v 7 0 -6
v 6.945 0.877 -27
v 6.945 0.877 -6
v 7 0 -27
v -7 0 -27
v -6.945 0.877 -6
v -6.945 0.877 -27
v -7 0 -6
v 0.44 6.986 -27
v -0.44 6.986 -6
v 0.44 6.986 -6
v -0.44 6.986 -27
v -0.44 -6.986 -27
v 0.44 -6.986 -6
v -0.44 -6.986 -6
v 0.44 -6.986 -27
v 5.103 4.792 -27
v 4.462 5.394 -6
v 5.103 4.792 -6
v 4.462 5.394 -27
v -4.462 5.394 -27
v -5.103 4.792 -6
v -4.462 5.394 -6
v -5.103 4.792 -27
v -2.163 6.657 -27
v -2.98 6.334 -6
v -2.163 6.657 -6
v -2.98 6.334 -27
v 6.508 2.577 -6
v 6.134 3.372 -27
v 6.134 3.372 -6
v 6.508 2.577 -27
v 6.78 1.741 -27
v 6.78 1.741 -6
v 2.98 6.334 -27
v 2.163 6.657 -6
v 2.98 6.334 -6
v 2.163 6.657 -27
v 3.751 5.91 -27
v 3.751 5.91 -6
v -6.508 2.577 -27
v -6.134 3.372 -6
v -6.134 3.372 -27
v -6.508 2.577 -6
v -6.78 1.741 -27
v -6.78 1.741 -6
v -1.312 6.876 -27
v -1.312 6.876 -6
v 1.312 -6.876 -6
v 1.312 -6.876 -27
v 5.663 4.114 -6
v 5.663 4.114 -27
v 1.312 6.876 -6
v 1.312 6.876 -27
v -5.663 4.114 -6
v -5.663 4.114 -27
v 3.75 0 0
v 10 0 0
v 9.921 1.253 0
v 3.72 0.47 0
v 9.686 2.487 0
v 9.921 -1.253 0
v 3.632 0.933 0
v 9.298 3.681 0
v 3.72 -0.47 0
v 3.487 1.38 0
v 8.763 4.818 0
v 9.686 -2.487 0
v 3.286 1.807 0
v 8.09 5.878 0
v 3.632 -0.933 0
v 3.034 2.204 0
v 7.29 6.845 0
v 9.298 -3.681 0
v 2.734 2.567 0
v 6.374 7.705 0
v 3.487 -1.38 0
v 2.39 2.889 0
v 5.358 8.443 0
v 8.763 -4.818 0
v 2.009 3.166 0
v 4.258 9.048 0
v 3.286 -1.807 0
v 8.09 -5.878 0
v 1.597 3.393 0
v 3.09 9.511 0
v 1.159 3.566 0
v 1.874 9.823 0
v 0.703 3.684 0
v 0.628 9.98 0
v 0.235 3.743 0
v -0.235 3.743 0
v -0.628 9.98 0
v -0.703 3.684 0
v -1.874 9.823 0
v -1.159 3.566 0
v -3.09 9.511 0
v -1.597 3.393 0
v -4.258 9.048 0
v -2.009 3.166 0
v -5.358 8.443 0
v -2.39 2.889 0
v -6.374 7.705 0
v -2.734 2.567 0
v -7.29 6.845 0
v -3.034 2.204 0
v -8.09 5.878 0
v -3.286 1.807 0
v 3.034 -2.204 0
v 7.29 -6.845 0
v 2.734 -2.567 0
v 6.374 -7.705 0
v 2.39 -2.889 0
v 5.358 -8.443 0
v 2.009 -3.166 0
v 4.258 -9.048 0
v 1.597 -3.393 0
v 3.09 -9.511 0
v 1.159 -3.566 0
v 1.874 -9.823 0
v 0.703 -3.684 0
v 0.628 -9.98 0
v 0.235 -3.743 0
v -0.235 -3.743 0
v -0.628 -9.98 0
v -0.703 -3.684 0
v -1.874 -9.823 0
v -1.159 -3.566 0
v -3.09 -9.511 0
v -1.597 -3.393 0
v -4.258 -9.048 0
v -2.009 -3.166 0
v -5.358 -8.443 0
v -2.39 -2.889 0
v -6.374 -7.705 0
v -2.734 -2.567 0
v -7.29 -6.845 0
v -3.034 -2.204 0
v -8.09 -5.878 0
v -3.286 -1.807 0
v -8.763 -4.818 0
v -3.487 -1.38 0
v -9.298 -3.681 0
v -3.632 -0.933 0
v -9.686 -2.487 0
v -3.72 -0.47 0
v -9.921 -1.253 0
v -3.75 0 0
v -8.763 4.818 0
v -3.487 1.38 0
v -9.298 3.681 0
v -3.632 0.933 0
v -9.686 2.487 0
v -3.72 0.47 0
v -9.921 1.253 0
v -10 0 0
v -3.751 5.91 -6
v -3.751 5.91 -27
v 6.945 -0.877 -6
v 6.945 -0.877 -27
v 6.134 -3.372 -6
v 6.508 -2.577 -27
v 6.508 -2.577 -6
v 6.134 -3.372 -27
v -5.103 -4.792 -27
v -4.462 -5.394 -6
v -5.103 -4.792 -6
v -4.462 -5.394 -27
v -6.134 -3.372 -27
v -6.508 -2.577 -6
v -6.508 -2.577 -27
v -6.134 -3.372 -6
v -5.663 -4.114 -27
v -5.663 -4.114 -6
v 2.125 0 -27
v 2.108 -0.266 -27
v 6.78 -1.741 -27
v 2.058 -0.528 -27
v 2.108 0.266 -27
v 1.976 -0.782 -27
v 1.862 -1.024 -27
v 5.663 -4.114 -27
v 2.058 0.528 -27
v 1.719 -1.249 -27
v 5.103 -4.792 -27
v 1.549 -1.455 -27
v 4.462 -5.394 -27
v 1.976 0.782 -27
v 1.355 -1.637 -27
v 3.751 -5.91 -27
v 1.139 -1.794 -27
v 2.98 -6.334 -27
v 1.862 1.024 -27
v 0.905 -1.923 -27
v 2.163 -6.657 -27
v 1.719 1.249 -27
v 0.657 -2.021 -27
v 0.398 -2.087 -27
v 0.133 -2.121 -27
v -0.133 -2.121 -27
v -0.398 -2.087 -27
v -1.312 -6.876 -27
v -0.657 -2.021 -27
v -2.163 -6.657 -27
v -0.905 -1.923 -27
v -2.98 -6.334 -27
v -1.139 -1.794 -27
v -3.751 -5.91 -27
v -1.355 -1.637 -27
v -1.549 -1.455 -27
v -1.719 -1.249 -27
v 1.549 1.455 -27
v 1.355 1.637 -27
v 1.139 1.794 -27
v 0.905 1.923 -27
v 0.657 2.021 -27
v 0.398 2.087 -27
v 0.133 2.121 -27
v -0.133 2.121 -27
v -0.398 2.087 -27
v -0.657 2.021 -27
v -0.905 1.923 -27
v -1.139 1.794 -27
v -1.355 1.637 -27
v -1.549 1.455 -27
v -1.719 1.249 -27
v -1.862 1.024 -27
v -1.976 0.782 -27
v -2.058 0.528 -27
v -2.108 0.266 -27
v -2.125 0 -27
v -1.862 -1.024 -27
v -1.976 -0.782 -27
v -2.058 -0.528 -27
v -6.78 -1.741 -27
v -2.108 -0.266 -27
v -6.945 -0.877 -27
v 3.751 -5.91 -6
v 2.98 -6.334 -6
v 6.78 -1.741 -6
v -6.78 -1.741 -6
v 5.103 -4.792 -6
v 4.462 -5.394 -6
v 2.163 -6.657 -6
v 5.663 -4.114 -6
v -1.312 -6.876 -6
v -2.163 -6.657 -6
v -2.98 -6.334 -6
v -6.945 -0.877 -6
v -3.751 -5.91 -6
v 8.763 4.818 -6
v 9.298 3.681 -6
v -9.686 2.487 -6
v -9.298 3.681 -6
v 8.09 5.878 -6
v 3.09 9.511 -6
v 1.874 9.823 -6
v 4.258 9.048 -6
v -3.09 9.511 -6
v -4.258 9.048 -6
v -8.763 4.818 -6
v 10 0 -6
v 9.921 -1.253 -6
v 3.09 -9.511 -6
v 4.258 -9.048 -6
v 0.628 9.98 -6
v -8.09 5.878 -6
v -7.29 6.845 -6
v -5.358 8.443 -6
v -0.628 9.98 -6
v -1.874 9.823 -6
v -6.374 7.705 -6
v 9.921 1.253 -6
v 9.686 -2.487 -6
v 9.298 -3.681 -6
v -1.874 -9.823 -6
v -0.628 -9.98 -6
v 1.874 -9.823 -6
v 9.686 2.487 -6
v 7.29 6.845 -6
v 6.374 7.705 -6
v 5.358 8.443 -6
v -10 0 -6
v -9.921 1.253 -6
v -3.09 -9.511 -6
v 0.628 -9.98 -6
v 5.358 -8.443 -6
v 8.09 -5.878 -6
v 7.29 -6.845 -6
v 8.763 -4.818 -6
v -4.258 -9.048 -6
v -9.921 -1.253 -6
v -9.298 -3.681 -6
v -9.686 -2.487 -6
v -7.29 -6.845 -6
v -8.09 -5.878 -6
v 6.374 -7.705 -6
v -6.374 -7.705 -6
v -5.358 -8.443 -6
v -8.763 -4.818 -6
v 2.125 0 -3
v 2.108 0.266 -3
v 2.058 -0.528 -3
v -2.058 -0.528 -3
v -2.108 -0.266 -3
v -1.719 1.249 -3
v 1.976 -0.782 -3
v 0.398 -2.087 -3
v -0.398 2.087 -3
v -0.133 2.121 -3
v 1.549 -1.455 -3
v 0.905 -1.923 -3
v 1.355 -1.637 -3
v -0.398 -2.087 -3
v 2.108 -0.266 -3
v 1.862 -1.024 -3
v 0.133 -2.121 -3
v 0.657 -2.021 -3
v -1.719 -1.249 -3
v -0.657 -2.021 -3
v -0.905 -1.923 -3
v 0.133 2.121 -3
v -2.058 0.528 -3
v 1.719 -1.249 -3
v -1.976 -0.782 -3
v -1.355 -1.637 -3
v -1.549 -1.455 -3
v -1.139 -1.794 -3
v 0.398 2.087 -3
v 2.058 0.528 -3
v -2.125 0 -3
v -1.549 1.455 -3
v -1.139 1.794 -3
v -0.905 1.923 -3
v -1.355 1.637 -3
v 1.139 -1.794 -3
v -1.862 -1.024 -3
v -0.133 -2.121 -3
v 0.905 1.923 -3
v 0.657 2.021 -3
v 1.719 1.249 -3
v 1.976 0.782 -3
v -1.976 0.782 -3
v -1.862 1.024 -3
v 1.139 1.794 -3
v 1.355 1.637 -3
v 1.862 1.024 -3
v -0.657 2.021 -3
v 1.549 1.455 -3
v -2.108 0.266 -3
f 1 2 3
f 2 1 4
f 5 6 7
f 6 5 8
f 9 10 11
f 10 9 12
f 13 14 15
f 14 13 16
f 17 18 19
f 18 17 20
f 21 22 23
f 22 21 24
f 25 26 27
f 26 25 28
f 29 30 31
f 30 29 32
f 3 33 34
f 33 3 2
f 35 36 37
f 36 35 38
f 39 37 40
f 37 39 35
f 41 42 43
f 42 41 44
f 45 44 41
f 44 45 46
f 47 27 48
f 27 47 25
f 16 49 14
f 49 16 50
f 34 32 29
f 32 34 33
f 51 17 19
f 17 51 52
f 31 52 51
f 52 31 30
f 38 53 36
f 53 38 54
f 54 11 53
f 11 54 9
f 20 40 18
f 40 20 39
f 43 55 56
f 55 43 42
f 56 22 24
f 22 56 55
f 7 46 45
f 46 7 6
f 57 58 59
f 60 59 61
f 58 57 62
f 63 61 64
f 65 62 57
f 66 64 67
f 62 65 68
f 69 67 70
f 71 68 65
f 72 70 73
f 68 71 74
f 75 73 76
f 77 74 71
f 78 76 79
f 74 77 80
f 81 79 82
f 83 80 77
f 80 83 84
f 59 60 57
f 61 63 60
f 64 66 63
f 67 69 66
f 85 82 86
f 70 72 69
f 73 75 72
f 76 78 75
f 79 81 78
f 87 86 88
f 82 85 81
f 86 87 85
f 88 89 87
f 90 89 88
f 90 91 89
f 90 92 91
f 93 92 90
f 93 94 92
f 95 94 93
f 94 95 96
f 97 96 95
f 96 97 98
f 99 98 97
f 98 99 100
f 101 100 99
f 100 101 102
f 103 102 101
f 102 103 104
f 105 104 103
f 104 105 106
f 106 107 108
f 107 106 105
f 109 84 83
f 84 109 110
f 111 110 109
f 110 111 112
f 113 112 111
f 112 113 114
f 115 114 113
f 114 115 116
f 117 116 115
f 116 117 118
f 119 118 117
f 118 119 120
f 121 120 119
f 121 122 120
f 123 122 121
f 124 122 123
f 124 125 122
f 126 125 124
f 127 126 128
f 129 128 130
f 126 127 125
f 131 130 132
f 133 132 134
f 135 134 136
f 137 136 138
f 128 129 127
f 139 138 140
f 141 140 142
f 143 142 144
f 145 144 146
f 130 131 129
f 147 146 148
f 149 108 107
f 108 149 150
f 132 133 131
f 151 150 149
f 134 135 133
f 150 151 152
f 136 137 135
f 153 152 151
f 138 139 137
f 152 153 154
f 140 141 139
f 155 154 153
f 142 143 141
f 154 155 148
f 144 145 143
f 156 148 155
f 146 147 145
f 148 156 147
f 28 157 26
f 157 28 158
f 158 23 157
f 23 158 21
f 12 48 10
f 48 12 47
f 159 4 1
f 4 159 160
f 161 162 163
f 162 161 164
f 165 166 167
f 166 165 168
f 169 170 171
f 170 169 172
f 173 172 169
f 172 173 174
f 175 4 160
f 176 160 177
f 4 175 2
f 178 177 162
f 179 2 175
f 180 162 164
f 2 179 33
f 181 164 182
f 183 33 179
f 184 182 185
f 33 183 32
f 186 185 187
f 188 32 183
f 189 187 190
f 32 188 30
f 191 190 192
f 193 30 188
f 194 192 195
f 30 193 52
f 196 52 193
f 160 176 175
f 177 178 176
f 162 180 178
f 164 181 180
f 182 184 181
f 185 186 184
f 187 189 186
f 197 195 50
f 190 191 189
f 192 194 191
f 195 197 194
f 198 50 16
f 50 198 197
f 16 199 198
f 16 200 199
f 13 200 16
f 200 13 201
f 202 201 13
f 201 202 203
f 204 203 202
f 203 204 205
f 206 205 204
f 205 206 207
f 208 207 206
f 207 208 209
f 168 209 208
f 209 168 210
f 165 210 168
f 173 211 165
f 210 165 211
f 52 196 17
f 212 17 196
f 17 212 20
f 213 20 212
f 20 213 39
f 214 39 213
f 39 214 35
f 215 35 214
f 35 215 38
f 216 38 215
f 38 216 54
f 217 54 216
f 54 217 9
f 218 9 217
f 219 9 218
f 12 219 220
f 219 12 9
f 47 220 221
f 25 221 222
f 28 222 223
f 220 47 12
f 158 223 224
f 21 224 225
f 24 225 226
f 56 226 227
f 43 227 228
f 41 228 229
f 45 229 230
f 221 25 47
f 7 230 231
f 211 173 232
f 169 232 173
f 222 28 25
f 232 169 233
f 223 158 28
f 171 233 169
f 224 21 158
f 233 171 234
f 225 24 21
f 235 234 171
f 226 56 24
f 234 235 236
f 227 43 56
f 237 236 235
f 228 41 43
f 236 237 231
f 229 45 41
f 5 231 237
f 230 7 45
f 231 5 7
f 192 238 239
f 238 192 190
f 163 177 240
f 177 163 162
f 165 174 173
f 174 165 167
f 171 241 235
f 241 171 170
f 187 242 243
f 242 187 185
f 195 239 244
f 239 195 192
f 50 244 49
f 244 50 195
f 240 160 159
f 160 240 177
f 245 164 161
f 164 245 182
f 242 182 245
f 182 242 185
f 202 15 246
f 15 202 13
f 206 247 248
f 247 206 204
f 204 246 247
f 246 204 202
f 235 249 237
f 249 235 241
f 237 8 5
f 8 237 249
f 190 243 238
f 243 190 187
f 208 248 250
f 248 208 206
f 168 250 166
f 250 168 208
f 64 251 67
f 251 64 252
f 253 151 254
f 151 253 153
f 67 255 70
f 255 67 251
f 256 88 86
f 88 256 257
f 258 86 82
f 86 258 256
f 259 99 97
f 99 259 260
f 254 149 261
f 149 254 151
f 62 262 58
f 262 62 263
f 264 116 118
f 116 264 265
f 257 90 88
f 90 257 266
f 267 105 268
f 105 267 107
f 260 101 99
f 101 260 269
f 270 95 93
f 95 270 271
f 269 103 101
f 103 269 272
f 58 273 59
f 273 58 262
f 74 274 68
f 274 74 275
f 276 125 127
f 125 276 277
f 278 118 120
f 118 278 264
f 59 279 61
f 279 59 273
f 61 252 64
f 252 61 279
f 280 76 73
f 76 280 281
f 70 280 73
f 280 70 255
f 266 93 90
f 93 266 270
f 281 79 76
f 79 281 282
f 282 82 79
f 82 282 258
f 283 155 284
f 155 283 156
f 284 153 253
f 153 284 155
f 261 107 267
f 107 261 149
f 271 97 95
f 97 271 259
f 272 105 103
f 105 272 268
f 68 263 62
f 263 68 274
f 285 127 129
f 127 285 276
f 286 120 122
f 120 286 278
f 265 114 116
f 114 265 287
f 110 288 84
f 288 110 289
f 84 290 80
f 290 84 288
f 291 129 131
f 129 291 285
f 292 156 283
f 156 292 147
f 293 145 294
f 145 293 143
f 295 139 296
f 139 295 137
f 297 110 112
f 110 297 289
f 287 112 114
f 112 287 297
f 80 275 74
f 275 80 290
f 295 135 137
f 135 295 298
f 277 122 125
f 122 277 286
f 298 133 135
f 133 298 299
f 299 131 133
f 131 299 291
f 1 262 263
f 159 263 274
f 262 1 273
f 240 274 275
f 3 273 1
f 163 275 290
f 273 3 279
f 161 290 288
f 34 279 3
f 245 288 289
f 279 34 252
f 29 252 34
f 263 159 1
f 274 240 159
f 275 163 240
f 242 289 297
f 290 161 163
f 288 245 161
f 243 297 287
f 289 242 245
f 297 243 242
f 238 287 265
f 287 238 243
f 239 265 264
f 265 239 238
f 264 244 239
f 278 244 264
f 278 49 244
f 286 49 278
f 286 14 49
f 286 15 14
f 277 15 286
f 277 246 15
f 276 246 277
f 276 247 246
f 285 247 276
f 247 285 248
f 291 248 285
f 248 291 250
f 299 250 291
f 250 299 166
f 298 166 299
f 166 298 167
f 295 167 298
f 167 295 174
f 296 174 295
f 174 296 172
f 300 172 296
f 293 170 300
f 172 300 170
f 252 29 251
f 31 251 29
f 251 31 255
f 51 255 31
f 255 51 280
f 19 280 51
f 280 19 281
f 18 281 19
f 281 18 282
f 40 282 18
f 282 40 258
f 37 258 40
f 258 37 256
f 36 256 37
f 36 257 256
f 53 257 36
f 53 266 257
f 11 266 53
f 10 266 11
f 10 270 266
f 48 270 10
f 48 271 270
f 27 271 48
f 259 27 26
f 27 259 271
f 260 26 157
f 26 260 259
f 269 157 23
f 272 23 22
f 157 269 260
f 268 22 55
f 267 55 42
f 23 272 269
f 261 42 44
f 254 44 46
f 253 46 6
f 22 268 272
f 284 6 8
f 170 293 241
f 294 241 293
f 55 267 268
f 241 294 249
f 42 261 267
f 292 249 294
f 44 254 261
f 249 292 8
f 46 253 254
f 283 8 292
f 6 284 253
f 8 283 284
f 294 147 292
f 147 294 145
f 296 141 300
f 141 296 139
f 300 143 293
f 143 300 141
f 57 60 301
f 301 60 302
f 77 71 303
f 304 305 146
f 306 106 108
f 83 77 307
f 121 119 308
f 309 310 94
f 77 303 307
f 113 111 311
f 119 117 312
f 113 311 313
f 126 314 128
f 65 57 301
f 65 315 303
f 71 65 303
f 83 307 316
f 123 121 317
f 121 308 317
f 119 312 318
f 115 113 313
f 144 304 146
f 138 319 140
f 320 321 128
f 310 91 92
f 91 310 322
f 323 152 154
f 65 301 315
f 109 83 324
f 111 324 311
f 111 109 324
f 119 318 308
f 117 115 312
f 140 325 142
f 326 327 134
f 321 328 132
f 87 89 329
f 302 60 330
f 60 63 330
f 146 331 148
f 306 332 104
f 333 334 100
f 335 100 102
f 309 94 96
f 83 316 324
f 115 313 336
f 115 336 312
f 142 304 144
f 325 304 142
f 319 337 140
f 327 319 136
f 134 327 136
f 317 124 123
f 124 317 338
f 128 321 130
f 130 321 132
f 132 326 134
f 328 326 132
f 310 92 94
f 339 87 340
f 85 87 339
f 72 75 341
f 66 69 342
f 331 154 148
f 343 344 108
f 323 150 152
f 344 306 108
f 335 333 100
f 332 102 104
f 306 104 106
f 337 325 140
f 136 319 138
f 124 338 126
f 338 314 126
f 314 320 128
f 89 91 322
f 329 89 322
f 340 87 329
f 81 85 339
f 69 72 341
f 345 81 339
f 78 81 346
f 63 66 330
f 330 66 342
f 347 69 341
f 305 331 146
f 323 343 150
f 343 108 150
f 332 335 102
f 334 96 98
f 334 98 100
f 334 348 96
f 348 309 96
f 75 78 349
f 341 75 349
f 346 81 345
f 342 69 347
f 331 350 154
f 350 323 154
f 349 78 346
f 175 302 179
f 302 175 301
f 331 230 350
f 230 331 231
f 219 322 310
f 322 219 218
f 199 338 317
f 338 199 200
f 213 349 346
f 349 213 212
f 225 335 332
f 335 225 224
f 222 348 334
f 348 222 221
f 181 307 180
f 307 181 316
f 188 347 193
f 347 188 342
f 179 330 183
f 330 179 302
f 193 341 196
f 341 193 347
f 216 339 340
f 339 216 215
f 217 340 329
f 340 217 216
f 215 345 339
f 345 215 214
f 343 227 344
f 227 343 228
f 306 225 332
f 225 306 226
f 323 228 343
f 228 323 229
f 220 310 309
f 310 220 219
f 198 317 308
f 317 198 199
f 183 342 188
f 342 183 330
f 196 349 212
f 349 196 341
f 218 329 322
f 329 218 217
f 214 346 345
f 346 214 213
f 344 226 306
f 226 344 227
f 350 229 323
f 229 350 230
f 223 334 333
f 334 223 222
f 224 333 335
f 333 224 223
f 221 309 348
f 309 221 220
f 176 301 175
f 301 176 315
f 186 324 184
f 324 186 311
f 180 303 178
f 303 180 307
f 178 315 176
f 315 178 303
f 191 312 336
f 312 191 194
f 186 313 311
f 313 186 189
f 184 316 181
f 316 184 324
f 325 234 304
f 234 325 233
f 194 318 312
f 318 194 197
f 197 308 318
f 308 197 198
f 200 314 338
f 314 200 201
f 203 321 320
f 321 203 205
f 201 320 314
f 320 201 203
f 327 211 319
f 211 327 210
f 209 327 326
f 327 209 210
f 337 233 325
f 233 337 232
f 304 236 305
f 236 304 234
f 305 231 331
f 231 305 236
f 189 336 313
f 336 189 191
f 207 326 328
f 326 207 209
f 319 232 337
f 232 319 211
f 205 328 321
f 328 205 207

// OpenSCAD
$fn = 50;


difference() {
	union() {
		translate(v = [0, 0, -27.0000000000]) {
			cylinder(h = 27, r = 7.0000000000);
		}
		translate(v = [0, 0, -6.0000000000]) {
			cylinder(h = 6, r = 10.0000000000);
		}
	}
	union() {
		translate(v = [0, 0, 0]) {
			rotate(a = [0, 0, 0]) {
				difference() {
					union() {
						#translate(v = [0, 0, -27.0000000000]) {
							cylinder(h = 27, r = 2.0000000000);
						}
						#translate(v = [0, 0, -3]) {
							cylinder(h = 3, r1 = 2.1250000000, r2 = 3.7500000000);
						}
						#translate(v = [0, 0, -27.0000000000]) {
							cylinder(h = 27, r = 2.1250000000);
						}
						#translate(v = [0, 0, -27.0000000000]) {
							cylinder(h = 27, r = 2.0000000000);
						}
					}
					union();
				}
			}
		}
	}
}
